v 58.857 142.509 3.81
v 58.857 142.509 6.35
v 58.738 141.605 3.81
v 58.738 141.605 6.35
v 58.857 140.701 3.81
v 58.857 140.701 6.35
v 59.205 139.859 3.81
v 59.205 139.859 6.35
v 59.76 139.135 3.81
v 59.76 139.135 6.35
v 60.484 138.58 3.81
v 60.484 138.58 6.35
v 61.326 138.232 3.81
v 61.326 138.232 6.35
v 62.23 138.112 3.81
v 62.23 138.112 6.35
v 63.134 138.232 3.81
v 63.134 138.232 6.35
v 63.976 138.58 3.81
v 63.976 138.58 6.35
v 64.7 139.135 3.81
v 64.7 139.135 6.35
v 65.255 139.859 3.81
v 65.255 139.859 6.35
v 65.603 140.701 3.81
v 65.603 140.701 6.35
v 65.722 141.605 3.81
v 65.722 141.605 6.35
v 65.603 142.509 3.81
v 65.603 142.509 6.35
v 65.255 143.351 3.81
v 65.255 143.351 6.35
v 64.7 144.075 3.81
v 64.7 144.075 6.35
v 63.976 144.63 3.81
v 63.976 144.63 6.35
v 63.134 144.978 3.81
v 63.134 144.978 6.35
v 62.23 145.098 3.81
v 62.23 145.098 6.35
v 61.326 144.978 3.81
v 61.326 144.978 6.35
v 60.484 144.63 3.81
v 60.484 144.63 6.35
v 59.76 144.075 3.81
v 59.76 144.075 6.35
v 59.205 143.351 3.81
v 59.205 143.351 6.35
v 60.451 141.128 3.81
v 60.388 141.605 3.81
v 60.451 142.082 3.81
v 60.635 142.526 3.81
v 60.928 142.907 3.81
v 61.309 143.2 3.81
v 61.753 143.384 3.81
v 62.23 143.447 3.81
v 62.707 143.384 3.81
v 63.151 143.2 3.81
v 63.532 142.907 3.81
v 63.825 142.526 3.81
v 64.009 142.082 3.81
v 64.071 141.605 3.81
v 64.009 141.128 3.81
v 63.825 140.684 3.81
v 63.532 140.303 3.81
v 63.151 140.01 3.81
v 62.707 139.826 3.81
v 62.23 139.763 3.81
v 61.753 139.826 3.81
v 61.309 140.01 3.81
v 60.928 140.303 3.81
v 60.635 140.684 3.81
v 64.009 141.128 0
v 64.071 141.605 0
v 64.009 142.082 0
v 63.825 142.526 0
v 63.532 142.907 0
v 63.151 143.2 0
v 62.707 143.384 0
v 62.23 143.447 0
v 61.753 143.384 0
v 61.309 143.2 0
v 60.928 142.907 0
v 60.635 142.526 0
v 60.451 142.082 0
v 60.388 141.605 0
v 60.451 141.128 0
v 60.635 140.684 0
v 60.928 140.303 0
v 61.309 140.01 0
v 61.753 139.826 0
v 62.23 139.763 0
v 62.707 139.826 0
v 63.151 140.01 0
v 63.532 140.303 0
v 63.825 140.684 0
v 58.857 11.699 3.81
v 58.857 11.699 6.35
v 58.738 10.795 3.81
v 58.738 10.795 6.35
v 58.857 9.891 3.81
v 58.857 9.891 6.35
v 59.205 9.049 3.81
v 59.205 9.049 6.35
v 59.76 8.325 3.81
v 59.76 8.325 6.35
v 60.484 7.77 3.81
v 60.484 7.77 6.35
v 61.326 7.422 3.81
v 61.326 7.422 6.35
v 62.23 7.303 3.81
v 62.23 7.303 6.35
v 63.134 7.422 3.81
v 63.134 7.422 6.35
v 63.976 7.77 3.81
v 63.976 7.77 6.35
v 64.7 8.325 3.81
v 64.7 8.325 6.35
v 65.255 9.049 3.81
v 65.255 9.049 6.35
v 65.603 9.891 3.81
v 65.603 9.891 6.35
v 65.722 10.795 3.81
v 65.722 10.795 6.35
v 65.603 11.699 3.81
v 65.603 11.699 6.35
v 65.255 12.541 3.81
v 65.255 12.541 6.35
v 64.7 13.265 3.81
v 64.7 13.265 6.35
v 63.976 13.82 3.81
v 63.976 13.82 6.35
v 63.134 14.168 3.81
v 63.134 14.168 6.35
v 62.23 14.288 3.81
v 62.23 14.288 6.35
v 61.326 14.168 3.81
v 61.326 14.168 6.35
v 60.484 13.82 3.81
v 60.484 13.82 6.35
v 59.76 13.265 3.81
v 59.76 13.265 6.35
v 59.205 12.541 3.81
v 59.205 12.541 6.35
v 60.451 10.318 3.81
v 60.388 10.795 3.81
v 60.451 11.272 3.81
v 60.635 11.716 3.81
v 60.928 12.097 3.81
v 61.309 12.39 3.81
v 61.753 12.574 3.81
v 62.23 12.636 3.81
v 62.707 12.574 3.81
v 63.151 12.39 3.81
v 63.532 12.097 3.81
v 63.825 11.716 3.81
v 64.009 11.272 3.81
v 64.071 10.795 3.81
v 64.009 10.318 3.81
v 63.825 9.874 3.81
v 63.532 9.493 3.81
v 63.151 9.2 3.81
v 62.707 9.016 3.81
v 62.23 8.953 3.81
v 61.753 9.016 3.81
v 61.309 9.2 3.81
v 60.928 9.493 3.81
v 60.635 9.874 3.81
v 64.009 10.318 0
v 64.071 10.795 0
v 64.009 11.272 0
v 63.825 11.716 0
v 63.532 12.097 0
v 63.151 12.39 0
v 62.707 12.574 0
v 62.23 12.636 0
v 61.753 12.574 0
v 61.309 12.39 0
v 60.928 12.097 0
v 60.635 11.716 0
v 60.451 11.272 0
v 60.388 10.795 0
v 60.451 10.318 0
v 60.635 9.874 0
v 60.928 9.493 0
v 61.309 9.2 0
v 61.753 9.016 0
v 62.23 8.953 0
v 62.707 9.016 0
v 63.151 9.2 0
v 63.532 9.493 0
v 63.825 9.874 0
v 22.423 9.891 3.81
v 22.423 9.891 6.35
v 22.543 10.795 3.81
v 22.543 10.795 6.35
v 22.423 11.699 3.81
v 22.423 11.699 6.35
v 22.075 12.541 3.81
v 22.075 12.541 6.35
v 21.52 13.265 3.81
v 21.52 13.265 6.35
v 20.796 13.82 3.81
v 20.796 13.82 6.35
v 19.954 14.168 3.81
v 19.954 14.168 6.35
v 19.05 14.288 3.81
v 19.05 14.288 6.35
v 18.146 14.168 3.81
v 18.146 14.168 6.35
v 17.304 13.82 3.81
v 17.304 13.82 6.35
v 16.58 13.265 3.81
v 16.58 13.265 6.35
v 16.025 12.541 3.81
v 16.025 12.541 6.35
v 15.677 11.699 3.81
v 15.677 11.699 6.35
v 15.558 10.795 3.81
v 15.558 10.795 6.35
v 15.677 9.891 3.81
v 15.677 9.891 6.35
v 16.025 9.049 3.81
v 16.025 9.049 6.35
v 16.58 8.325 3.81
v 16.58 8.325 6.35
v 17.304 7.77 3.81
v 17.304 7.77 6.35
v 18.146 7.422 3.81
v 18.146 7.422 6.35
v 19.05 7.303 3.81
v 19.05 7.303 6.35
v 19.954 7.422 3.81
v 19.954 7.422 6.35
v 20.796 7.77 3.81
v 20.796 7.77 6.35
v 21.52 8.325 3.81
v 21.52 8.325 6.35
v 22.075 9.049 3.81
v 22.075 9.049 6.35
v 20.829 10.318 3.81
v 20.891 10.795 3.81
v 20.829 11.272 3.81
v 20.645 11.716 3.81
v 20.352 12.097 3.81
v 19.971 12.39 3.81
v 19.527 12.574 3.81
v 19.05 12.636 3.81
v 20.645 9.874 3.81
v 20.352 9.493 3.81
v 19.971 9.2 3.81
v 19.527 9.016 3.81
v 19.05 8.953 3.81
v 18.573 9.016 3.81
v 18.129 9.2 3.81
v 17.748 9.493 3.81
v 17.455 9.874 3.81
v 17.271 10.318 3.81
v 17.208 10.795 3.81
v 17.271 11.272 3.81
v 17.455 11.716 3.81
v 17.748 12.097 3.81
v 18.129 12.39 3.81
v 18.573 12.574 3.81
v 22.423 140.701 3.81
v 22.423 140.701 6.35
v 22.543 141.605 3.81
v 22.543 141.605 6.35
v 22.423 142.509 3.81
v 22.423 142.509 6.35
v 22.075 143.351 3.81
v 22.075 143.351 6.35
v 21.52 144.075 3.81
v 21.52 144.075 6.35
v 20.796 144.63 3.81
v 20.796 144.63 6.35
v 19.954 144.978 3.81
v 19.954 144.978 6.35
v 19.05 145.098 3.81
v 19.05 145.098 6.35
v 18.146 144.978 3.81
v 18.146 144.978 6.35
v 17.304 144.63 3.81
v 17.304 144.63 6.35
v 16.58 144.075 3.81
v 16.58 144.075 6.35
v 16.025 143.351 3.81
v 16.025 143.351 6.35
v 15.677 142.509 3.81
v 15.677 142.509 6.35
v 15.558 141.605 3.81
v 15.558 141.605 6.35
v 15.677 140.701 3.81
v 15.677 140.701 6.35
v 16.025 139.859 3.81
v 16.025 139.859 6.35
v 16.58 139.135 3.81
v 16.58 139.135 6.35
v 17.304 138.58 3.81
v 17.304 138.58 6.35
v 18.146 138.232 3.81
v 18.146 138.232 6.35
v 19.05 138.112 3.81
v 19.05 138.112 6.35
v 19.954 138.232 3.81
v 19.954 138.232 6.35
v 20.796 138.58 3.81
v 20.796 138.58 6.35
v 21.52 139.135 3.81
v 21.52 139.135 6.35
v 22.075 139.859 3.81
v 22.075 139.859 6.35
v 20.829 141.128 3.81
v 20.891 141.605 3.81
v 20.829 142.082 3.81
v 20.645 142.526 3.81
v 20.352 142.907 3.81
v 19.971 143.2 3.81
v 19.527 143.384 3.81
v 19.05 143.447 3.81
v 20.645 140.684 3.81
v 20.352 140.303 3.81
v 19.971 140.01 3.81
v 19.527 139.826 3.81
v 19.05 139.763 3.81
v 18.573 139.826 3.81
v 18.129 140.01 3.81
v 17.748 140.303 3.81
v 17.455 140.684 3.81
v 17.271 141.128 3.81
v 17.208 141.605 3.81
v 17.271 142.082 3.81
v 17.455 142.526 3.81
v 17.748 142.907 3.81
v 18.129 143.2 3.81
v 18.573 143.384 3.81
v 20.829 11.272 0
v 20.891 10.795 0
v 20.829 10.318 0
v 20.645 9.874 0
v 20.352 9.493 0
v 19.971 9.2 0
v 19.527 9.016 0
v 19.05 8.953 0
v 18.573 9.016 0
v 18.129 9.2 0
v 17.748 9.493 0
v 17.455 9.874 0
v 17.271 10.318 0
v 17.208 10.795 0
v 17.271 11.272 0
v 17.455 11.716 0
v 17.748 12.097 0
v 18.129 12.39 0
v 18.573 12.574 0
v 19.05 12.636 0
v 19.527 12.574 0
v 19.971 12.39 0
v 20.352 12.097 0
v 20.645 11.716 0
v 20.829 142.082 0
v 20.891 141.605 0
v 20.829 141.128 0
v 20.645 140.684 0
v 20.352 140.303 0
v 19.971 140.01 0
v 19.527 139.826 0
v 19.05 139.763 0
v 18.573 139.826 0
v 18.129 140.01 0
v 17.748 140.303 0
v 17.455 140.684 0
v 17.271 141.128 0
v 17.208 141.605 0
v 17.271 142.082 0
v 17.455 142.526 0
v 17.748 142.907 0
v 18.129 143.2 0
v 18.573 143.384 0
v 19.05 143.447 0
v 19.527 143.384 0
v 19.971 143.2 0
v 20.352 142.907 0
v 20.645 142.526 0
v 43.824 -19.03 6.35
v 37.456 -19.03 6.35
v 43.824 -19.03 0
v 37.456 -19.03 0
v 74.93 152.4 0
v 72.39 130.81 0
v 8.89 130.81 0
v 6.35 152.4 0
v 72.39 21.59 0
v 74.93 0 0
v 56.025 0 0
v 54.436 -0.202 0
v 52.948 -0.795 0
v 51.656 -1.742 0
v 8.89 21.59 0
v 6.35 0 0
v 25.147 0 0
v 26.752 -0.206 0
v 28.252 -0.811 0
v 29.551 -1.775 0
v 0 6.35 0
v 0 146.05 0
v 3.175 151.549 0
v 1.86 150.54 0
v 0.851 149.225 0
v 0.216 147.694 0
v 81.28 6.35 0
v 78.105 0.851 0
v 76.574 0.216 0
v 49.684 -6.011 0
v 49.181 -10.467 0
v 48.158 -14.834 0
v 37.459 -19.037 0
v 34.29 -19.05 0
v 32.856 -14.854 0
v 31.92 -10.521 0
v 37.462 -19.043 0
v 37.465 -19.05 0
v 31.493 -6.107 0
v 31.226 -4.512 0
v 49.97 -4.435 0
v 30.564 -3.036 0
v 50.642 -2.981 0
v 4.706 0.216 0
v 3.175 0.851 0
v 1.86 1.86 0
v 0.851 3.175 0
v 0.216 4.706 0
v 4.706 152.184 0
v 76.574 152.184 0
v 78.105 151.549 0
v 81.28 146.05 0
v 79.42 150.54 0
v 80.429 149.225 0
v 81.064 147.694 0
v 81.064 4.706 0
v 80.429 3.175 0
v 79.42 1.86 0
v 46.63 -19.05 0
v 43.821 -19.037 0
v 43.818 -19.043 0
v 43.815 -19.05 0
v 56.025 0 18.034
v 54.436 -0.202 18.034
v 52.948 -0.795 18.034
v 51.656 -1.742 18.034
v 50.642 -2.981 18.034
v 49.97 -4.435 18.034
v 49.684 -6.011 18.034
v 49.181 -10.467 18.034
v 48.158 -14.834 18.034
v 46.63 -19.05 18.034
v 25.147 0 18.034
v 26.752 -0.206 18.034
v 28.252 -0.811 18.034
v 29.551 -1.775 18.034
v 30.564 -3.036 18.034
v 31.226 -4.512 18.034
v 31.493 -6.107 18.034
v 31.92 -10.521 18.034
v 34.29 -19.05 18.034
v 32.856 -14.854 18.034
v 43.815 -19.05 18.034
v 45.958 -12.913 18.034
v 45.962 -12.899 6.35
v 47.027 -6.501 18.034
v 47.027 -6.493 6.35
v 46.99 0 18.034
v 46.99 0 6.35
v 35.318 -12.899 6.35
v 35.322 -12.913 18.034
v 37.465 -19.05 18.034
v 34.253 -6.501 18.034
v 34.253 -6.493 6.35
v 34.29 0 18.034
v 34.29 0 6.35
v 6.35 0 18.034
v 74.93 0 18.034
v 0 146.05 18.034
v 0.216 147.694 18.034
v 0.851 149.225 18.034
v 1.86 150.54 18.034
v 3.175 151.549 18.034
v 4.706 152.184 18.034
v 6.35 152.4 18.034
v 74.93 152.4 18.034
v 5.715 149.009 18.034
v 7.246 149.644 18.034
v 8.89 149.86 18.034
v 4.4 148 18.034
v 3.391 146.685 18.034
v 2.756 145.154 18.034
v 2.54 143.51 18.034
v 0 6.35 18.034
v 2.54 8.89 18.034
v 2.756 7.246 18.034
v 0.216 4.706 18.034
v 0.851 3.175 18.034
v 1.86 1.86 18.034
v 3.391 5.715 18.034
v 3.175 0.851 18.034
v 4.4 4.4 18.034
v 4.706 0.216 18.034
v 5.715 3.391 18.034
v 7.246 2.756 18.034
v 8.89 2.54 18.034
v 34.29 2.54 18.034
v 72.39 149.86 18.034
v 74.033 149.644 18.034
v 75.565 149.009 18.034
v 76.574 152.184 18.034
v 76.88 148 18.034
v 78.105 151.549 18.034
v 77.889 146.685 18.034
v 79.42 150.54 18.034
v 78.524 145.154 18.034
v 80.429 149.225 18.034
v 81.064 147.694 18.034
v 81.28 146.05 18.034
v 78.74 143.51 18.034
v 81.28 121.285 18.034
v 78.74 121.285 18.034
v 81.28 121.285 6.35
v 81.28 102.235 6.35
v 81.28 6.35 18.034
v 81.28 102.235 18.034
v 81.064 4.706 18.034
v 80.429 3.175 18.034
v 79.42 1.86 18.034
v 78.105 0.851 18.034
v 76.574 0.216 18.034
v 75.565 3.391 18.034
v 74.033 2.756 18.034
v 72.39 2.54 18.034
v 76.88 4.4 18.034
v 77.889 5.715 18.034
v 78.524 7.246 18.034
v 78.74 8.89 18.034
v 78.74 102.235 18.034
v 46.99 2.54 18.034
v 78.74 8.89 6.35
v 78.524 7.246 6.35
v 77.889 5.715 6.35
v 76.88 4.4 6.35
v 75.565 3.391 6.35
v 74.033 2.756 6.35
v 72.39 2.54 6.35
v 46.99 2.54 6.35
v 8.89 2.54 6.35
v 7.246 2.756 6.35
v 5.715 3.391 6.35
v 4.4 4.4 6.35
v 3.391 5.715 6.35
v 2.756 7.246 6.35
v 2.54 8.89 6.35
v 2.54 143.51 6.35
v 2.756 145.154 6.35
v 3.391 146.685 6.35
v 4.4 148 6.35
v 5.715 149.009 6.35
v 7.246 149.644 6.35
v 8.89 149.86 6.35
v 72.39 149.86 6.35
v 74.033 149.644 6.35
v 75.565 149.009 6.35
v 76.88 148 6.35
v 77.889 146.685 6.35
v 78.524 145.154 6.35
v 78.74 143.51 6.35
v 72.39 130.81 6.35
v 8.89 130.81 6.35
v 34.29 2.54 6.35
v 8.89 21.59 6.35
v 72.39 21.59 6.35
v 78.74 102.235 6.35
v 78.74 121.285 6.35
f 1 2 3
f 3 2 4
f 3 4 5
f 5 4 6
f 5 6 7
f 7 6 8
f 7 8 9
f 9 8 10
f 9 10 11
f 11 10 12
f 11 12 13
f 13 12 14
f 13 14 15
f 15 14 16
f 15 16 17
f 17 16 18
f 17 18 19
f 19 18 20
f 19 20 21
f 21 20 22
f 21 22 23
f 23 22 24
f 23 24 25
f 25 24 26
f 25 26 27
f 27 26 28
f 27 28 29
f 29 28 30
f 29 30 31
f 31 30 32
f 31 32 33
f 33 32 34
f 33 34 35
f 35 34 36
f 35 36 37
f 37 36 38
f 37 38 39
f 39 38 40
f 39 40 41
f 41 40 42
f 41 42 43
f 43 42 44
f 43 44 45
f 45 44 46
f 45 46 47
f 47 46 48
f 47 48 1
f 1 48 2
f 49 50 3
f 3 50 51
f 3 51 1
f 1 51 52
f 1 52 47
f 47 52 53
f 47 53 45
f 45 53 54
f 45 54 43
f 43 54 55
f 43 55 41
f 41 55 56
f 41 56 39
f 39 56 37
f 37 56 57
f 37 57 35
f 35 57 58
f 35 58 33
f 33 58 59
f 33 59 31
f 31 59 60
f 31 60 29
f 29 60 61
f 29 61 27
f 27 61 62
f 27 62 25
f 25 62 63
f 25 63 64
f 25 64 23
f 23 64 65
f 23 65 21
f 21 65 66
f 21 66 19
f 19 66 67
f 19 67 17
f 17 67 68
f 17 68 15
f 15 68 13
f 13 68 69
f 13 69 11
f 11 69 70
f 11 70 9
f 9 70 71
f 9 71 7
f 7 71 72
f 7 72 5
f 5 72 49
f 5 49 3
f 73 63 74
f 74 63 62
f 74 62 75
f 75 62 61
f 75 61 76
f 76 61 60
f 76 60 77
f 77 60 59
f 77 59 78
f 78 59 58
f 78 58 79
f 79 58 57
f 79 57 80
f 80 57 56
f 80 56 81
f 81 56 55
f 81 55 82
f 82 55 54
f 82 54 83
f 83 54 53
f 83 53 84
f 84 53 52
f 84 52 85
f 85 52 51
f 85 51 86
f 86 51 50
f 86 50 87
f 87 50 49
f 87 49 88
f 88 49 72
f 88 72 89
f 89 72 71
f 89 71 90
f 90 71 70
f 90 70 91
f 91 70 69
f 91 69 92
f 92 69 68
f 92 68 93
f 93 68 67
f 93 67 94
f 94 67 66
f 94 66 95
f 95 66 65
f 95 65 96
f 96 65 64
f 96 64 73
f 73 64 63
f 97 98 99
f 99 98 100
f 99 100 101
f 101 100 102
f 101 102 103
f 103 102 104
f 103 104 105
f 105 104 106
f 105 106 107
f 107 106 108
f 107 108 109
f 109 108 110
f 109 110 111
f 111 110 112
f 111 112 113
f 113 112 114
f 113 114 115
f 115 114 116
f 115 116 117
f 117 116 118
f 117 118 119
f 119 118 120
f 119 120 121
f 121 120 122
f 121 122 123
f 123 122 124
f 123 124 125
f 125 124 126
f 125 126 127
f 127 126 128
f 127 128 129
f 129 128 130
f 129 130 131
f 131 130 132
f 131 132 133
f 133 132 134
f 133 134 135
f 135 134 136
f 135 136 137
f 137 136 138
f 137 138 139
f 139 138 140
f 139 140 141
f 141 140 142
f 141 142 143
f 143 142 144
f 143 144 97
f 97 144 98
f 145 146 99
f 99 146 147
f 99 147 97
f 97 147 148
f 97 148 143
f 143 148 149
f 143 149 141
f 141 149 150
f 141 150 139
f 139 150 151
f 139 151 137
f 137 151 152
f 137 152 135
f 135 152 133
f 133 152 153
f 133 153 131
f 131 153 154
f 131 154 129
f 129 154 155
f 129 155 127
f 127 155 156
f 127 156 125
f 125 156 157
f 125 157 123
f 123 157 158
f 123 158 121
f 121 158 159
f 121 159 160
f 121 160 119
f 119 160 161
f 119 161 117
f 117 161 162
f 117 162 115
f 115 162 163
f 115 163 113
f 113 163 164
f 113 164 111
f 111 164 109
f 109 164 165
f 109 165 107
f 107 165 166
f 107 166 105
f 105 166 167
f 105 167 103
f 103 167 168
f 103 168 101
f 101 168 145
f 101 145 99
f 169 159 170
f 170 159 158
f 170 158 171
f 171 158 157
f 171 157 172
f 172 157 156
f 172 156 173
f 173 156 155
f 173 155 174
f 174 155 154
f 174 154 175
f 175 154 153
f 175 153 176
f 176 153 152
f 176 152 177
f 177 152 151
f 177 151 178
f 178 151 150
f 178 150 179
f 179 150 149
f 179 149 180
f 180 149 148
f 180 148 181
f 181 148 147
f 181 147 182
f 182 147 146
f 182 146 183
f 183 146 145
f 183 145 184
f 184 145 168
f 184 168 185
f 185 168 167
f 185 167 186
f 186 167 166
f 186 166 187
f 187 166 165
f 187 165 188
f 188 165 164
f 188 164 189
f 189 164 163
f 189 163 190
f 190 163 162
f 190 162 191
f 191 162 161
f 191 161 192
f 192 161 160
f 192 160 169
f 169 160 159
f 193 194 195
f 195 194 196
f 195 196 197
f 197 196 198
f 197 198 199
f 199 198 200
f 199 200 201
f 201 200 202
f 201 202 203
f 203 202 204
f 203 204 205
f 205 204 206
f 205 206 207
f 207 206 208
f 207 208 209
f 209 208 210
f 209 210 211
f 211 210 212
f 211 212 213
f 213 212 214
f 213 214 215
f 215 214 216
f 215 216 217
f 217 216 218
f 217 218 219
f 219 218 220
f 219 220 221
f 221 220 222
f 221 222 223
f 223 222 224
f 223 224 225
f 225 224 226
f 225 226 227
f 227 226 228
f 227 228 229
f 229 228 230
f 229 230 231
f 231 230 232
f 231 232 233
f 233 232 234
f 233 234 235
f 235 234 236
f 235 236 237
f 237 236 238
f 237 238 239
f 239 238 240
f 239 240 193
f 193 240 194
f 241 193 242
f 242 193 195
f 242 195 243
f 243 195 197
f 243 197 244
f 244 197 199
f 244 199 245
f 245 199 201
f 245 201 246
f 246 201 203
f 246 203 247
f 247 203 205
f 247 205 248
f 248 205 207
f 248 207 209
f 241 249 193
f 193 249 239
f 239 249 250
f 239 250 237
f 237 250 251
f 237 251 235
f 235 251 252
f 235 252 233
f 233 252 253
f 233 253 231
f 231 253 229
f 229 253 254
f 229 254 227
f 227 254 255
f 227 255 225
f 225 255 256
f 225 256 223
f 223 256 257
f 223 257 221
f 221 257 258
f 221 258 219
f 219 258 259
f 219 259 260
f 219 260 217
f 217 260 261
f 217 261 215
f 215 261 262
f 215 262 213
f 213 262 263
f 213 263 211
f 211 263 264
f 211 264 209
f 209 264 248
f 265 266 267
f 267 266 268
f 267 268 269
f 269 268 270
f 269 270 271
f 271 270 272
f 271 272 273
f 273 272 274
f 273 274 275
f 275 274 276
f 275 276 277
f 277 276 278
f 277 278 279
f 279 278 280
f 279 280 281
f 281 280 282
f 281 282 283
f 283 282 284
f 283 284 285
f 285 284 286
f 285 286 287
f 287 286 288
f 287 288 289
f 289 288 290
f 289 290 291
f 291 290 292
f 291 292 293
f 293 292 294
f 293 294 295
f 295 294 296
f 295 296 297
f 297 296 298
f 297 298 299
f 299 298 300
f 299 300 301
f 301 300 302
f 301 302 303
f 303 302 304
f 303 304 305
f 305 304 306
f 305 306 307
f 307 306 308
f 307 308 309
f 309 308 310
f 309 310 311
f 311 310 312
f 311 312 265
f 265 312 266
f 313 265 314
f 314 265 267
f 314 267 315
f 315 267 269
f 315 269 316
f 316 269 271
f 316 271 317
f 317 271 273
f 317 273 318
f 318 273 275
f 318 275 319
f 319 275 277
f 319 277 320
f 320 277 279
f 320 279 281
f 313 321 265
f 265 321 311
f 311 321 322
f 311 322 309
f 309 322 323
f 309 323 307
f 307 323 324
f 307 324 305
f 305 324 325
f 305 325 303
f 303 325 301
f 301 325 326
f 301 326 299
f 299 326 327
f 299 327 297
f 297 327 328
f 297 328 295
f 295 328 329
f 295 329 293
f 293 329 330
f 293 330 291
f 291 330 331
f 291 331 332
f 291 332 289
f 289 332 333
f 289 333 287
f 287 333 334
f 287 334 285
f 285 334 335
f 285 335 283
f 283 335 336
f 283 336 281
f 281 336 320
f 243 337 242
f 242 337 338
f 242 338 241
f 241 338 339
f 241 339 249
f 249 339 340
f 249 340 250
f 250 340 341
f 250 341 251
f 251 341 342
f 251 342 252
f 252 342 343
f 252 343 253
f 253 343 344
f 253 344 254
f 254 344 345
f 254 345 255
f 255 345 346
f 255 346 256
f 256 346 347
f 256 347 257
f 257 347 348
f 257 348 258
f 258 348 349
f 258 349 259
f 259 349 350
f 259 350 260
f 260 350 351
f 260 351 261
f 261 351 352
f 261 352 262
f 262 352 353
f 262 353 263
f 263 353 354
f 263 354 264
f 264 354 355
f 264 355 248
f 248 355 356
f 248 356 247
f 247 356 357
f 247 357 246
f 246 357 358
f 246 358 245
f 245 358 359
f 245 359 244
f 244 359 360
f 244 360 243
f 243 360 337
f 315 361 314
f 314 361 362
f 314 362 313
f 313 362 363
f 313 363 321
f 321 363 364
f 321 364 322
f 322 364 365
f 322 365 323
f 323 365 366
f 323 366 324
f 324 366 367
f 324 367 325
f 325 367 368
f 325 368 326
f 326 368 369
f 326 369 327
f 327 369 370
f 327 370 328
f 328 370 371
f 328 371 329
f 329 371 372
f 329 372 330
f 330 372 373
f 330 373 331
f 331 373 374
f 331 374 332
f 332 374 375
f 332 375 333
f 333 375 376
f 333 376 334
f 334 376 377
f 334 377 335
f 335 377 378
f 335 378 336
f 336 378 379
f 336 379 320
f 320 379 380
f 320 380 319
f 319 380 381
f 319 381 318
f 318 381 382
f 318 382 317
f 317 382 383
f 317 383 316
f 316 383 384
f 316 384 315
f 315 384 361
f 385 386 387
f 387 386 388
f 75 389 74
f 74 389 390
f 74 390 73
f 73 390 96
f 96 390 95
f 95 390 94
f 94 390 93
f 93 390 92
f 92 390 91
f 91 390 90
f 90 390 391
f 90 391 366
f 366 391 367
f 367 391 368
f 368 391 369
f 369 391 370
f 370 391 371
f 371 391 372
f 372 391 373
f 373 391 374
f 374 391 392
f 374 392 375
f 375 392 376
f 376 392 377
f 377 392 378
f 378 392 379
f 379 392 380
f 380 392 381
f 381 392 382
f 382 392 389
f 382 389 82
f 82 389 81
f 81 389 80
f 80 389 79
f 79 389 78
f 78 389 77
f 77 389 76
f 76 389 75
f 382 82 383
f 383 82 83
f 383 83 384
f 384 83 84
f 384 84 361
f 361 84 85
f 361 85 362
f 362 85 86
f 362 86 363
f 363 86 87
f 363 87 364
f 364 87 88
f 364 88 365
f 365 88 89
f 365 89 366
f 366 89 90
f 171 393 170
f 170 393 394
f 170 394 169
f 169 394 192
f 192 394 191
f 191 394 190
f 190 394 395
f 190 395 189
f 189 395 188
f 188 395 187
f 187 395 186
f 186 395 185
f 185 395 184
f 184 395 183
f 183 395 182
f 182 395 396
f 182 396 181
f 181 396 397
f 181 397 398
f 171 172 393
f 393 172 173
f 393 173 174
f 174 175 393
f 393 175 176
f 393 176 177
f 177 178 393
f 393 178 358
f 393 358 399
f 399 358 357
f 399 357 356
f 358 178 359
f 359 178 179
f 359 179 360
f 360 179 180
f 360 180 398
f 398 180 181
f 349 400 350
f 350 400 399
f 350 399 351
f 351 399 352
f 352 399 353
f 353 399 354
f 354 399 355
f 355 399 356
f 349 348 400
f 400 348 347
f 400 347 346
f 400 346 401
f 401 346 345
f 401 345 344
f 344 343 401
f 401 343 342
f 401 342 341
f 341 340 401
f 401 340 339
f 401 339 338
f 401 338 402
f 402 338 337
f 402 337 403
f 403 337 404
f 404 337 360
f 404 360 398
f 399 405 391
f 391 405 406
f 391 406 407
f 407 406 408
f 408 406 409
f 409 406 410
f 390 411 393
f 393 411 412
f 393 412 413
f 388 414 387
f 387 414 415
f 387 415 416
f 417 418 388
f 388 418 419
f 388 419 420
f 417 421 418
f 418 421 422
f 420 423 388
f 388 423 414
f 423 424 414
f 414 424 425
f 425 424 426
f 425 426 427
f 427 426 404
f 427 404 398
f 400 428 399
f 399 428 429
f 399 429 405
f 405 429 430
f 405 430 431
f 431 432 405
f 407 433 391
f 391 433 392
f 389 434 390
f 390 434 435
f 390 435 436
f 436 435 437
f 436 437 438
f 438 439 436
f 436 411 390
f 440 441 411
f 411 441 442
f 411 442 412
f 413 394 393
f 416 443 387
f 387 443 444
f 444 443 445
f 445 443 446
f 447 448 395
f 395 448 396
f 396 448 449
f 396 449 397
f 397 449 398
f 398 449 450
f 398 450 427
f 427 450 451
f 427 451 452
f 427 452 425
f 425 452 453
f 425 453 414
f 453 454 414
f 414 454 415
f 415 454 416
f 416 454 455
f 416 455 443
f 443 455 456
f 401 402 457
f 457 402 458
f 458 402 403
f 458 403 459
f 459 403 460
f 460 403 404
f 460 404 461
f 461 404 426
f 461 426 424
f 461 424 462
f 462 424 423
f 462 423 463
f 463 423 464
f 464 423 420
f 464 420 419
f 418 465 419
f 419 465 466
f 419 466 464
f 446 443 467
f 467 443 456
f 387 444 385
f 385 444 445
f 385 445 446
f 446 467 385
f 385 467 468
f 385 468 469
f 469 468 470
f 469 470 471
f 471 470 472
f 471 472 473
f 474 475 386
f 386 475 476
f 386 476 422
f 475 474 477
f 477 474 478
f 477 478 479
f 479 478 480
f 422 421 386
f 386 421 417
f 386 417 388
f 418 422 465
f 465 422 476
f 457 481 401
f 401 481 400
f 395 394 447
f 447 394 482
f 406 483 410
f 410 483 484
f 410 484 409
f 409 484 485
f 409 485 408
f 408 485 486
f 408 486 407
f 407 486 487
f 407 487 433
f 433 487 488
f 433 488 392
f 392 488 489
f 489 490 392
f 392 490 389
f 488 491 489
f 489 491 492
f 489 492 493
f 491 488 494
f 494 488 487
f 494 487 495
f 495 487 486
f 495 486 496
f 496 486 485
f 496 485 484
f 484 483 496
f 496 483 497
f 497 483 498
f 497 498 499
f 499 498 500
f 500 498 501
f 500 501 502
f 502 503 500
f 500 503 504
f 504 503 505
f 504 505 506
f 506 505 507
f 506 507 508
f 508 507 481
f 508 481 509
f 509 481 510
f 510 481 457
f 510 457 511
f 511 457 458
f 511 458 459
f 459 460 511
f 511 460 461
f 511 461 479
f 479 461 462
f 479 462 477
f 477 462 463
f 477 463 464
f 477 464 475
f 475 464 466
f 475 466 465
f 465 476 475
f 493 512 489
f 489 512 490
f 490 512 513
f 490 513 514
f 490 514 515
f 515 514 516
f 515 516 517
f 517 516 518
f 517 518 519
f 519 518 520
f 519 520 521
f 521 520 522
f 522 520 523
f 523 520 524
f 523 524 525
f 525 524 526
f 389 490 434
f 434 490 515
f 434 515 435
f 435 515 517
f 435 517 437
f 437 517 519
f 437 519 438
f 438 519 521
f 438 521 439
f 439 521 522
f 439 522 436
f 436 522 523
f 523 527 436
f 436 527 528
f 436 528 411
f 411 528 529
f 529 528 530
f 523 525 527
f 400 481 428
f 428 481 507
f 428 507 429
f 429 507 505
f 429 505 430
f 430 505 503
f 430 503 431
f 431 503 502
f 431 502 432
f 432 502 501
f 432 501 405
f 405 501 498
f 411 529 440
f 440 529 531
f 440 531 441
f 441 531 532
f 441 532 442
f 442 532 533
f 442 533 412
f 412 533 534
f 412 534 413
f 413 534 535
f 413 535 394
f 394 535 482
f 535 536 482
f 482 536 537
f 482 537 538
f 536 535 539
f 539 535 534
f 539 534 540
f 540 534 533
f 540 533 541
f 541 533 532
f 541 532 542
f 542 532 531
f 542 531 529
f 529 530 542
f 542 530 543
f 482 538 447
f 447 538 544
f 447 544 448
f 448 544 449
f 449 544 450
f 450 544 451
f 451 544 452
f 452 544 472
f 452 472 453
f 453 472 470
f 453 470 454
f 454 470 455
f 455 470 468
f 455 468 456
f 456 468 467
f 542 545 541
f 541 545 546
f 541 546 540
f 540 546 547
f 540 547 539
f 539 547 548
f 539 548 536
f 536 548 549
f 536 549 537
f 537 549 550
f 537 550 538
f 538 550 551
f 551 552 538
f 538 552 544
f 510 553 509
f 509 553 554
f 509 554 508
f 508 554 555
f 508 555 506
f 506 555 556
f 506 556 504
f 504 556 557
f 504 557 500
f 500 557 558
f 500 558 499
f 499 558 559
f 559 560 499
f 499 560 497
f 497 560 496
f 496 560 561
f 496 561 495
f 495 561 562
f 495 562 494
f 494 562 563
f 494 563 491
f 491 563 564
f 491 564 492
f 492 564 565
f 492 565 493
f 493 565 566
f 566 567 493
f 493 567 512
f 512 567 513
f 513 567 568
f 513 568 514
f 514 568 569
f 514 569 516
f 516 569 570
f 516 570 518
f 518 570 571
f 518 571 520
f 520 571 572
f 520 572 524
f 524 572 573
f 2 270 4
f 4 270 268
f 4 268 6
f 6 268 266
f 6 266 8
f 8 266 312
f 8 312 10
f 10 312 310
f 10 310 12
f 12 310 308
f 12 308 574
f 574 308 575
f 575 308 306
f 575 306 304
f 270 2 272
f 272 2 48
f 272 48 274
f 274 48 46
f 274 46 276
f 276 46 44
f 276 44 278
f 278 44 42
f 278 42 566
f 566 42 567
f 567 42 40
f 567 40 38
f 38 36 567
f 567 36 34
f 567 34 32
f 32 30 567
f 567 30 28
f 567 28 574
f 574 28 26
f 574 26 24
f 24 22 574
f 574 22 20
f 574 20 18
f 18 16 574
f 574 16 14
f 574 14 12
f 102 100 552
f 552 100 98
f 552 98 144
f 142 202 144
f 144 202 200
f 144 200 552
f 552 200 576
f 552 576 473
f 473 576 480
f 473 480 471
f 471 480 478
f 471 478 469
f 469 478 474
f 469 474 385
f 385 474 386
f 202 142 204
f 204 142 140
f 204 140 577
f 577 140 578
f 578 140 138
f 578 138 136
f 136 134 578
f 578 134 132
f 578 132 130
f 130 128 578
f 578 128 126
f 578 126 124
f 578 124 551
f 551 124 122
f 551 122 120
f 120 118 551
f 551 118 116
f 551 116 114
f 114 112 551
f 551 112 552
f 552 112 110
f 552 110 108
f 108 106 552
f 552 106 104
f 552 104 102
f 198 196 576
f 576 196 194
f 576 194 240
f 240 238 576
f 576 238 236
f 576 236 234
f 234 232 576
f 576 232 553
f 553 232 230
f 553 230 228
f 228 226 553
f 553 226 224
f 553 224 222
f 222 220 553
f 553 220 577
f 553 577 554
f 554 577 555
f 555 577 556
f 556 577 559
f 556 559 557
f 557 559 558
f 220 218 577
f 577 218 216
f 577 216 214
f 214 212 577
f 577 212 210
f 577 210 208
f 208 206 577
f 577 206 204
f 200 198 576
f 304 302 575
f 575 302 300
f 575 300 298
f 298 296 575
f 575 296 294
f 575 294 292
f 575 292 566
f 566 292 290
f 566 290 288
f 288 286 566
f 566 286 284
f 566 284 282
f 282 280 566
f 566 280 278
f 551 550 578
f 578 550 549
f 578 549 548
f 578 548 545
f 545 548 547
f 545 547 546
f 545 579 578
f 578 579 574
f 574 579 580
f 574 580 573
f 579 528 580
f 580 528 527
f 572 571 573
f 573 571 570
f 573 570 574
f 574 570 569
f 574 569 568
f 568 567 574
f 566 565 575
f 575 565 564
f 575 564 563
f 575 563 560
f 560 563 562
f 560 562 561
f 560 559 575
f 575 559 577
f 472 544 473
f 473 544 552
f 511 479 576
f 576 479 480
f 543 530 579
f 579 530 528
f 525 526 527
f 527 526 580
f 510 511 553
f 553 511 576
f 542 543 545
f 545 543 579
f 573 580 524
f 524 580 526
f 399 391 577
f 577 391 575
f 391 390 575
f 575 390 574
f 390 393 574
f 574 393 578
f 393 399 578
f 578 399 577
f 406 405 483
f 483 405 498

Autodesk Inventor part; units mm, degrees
ref_plane "YZ Plane" through (0, 0, 0) normal (1, 0, 0) x (0, 1, 0)
ref_plane "XZ Plane" through (0, 0, 0) normal (0, 1, 0) x (-1, 0, 0)
sketch "Sketch1" plane through (0, 0, 0) normal (0, 0, 1) x (1, 0, 0)
  line L0 (0, 0) -> (81.28, 0)
  line L1 (81.28, 0) -> (81.28, 152.4)
  line L2 (81.28, 152.4) -> (0, 152.4)
  line L3 (0, 152.4) -> (0, 0)
  line L4 (8.89, 21.59) -> (72.39, 21.59)
  line L5 (72.39, 21.59) -> (72.39, 130.81)
  line L6 (72.39, 130.81) -> (8.89, 130.81)
  line L7 (8.89, 130.81) -> (8.89, 21.59)
  dimension "d0" = 81.28
  dimension "d1" = 152.4
  dimension "d2" = 21.59
  dimension "d3" = 8.89
  dimension "d4" = 63.5
  dimension "d5" = 109.22
extrude "Extrusion1" add sketch "Sketch1" along normal blind 6.35
sketch "Sketch2" plane through (0, 0, 6.35) normal (0, 0, 1) x (1, 0, 0)
  line L0 (0, 0) -> (81.28, 0)
  line L1 (81.28, 0) -> (81.28, 152.4)
  line L2 (81.28, 152.4) -> (0, 152.4)
  line L3 (0, 152.4) -> (0, 0)
  line L4 (2.54, 2.54) -> (78.74, 2.54)
  line L5 (78.74, 2.54) -> (78.74, 149.86)
  line L6 (78.74, 149.86) -> (2.54, 149.86)
  line L7 (2.54, 149.86) -> (2.54, 2.54)
  dimension "d8" = 2.54
  dimension "d9" = 2.54
  dimension "d10" = 76.2
  dimension "d11" = 147.32
extrude "Extrusion2" add sketch "Sketch2" along normal blind 11.684
sketch "Sketch3" plane through (0, 0, 18.034) normal (0, 0, 1) x (1, 0, 0)
  line L0 (0, 0) -> (81.28, 0) projected
  line L1 (2.54, 2.54) -> (78.74, 2.54) projected
  line L2 (34.29, 0) -> (46.99, 0)
  line L3 (46.99, 0) -> (46.99, 2.54)
  line L4 (46.99, 2.54) -> (34.29, 2.54)
  line L5 (34.29, 2.54) -> (34.29, 0)
  line L6 (81.28, 0) -> (81.28, 152.4) projected
  line L7 (81.28, 152.4) -> (0, 152.4) projected
  line L8 (78.74, 2.54) -> (78.74, 149.86) projected
  line L9 (81.28, 121.285) -> (78.74, 121.285)
  line L10 (78.74, 121.285) -> (78.74, 102.235)
  line L11 (78.74, 102.235) -> (81.28, 102.235)
  line L12 (81.28, 102.235) -> (81.28, 121.285)
  dimension "d14" = 34.29
  dimension "d15" = 12.7
  dimension "d16" = 31.115
  dimension "d17" = 19.05
extrude "Extrusion3" cut sketch "Sketch3" against normal blind 11.684 contours L5 L1 L3 L0 | L11 L8 L9 L6
fillet "Fillet1" radius 6.35 1 edges at (78.74, 149.86, 12.192)
fillet "Fillet2" radius 6.35 3 edges at (2.54, 149.86, 12.192) (2.54, 2.54, 12.192) (78.74, 2.54, 12.192)
fillet "Fillet3" radius 6.35 4 edges at (81.28, 0, 9.017) (0, 0, 9.017) (81.28, 152.4, 9.017) (0, 152.4, 9.017)
sketch "Sketch4" plane through (0, 0, 0) normal (0, 0, -1) x (-1, 0, 0)
  line L0 (-46.99, 0) -> (-34.29, 0) projected
  arc A0 (-37.465, -19.05) -> (-34.29, 0) centre (-72.232, -3.4659) ccw
  arc A1 (-46.99, 0) -> (-43.815, -19.05) centre (-9.048, -3.4659) ccw
  line L1 (-6.35, 0) -> (-34.29, 0) projected
  line L2 (-6.35, 0) -> (-74.93, 0) projected
  arc A2 (-34.29, -19.05) -> (-31.75, 0) centre (-69.5649, -4.6523) ccw
  arc A3 (-49.53, 0) -> (-46.6296, -19.05) centre (-11.6381, -3.9766) ccw
  line L3 (-34.29, -19.05) -> (-37.465, -19.05)
  line L4 (-46.6296, -19.05) -> (-43.815, -19.05)
  point P0 (0, 0)
  dimension "d24" = 19.05
  dimension "d25" = 3.175
  dimension "d26" = 3.175
  dimension "d27" = 38.1
  dimension "d28" = 38.1
  dimension "d29" = 2.54
  dimension "d30" = 2.54
  dimension "d31" = 38.1
  dimension "d32" = 38.1
  dimension "d33" = 3.175
extrude "Extrusion4" add sketch "Sketch4" against normal blind 18.034
fillet "Fillet4" radius 6.35 1 edges at (31.75, 0, 9.017)
fillet "Fillet5" radius 6.35 1 edges at (49.53, 0, 9.017)
sketch "Sketch5" plane through (0, 0, 0) normal (0, 0, -1) x (-1, 0, 0)
  arc A0 (-35.9722, -19.0303) -> (-32.9017, 0) centre (-116.0568, 3.6542) ccw
  arc A1 (-49.1616, 0) -> (-45.6026, -19.0303) centre (-4.2841, -1.455) ccw
  arc A2 (-32.9017, 0) -> (-49.1616, 0) centre (-41.0317, -15.216) ccw
  line L0 (-35.9722, -19.0303) -> (-45.6026, -19.0303)
  line L1 (-46.6296, -19.05) -> (-43.815, -19.05) projected
  point P0 (0, 0)
extrude "Extrusion5" add sketch "Sketch5" against normal blind 6.35
sketch "Sketch6" plane through (0, 0, 6.35) normal (0, 0, 1) x (1, 0, 0)
  line L0 (74.93, 152.4) -> (6.35, 152.4) projected
  line L1 (6.35, 0) -> (25.1473, 0) projected
  line L2 (0, 146.05) -> (0, 6.35) projected
  point P0 (0, 0)
  point P1 (19.05, 10.795)
  point P2 (19.05, 141.605)
  dimension "d40" = 10.795
  dimension "d41" = 10.795
  dimension "d42" = 19.05
  dimension "d43" = 19.05
hole "Hole1" at (19.05, 10.795, 6.35) at (19.05, 141.605, 6.35) direction (0, 0, -1) diameter 3.683 depth 25.4 tip angle 118
sketch "Sketch7" plane through (0, 0, 6.35) normal (0, 0, 1) x (1, 0, 0)
  circle A0 centre (19.05, 10.795) radius 1.8415 projected
  circle A1 centre (19.05, 10.795) radius 3.4925
  circle A2 centre (19.05, 141.605) radius 1.8415 projected
  circle A3 centre (19.05, 141.605) radius 3.4925
  point P0 (0, 0)
  dimension "d51" = 6.985
  dimension "d52" = 6.985
extrude "Extrusion6" cut sketch "Sketch7" against normal blind 2.54
ref_plane "Work Plane1" through (40.64, 102.235, 6.35) normal (1, 0, 0) x (0, 0, -1)
mirror "Mirror1" about plane through (40.64, 102.235, 6.35) normal (1, 0, 0) of "Extrusion6", "Hole1"
equation "\"d26\" = d25"
equation "\"d28\" = d27"
equation "\"d30\" = d29"
properties part number "DS Phone Holder"
